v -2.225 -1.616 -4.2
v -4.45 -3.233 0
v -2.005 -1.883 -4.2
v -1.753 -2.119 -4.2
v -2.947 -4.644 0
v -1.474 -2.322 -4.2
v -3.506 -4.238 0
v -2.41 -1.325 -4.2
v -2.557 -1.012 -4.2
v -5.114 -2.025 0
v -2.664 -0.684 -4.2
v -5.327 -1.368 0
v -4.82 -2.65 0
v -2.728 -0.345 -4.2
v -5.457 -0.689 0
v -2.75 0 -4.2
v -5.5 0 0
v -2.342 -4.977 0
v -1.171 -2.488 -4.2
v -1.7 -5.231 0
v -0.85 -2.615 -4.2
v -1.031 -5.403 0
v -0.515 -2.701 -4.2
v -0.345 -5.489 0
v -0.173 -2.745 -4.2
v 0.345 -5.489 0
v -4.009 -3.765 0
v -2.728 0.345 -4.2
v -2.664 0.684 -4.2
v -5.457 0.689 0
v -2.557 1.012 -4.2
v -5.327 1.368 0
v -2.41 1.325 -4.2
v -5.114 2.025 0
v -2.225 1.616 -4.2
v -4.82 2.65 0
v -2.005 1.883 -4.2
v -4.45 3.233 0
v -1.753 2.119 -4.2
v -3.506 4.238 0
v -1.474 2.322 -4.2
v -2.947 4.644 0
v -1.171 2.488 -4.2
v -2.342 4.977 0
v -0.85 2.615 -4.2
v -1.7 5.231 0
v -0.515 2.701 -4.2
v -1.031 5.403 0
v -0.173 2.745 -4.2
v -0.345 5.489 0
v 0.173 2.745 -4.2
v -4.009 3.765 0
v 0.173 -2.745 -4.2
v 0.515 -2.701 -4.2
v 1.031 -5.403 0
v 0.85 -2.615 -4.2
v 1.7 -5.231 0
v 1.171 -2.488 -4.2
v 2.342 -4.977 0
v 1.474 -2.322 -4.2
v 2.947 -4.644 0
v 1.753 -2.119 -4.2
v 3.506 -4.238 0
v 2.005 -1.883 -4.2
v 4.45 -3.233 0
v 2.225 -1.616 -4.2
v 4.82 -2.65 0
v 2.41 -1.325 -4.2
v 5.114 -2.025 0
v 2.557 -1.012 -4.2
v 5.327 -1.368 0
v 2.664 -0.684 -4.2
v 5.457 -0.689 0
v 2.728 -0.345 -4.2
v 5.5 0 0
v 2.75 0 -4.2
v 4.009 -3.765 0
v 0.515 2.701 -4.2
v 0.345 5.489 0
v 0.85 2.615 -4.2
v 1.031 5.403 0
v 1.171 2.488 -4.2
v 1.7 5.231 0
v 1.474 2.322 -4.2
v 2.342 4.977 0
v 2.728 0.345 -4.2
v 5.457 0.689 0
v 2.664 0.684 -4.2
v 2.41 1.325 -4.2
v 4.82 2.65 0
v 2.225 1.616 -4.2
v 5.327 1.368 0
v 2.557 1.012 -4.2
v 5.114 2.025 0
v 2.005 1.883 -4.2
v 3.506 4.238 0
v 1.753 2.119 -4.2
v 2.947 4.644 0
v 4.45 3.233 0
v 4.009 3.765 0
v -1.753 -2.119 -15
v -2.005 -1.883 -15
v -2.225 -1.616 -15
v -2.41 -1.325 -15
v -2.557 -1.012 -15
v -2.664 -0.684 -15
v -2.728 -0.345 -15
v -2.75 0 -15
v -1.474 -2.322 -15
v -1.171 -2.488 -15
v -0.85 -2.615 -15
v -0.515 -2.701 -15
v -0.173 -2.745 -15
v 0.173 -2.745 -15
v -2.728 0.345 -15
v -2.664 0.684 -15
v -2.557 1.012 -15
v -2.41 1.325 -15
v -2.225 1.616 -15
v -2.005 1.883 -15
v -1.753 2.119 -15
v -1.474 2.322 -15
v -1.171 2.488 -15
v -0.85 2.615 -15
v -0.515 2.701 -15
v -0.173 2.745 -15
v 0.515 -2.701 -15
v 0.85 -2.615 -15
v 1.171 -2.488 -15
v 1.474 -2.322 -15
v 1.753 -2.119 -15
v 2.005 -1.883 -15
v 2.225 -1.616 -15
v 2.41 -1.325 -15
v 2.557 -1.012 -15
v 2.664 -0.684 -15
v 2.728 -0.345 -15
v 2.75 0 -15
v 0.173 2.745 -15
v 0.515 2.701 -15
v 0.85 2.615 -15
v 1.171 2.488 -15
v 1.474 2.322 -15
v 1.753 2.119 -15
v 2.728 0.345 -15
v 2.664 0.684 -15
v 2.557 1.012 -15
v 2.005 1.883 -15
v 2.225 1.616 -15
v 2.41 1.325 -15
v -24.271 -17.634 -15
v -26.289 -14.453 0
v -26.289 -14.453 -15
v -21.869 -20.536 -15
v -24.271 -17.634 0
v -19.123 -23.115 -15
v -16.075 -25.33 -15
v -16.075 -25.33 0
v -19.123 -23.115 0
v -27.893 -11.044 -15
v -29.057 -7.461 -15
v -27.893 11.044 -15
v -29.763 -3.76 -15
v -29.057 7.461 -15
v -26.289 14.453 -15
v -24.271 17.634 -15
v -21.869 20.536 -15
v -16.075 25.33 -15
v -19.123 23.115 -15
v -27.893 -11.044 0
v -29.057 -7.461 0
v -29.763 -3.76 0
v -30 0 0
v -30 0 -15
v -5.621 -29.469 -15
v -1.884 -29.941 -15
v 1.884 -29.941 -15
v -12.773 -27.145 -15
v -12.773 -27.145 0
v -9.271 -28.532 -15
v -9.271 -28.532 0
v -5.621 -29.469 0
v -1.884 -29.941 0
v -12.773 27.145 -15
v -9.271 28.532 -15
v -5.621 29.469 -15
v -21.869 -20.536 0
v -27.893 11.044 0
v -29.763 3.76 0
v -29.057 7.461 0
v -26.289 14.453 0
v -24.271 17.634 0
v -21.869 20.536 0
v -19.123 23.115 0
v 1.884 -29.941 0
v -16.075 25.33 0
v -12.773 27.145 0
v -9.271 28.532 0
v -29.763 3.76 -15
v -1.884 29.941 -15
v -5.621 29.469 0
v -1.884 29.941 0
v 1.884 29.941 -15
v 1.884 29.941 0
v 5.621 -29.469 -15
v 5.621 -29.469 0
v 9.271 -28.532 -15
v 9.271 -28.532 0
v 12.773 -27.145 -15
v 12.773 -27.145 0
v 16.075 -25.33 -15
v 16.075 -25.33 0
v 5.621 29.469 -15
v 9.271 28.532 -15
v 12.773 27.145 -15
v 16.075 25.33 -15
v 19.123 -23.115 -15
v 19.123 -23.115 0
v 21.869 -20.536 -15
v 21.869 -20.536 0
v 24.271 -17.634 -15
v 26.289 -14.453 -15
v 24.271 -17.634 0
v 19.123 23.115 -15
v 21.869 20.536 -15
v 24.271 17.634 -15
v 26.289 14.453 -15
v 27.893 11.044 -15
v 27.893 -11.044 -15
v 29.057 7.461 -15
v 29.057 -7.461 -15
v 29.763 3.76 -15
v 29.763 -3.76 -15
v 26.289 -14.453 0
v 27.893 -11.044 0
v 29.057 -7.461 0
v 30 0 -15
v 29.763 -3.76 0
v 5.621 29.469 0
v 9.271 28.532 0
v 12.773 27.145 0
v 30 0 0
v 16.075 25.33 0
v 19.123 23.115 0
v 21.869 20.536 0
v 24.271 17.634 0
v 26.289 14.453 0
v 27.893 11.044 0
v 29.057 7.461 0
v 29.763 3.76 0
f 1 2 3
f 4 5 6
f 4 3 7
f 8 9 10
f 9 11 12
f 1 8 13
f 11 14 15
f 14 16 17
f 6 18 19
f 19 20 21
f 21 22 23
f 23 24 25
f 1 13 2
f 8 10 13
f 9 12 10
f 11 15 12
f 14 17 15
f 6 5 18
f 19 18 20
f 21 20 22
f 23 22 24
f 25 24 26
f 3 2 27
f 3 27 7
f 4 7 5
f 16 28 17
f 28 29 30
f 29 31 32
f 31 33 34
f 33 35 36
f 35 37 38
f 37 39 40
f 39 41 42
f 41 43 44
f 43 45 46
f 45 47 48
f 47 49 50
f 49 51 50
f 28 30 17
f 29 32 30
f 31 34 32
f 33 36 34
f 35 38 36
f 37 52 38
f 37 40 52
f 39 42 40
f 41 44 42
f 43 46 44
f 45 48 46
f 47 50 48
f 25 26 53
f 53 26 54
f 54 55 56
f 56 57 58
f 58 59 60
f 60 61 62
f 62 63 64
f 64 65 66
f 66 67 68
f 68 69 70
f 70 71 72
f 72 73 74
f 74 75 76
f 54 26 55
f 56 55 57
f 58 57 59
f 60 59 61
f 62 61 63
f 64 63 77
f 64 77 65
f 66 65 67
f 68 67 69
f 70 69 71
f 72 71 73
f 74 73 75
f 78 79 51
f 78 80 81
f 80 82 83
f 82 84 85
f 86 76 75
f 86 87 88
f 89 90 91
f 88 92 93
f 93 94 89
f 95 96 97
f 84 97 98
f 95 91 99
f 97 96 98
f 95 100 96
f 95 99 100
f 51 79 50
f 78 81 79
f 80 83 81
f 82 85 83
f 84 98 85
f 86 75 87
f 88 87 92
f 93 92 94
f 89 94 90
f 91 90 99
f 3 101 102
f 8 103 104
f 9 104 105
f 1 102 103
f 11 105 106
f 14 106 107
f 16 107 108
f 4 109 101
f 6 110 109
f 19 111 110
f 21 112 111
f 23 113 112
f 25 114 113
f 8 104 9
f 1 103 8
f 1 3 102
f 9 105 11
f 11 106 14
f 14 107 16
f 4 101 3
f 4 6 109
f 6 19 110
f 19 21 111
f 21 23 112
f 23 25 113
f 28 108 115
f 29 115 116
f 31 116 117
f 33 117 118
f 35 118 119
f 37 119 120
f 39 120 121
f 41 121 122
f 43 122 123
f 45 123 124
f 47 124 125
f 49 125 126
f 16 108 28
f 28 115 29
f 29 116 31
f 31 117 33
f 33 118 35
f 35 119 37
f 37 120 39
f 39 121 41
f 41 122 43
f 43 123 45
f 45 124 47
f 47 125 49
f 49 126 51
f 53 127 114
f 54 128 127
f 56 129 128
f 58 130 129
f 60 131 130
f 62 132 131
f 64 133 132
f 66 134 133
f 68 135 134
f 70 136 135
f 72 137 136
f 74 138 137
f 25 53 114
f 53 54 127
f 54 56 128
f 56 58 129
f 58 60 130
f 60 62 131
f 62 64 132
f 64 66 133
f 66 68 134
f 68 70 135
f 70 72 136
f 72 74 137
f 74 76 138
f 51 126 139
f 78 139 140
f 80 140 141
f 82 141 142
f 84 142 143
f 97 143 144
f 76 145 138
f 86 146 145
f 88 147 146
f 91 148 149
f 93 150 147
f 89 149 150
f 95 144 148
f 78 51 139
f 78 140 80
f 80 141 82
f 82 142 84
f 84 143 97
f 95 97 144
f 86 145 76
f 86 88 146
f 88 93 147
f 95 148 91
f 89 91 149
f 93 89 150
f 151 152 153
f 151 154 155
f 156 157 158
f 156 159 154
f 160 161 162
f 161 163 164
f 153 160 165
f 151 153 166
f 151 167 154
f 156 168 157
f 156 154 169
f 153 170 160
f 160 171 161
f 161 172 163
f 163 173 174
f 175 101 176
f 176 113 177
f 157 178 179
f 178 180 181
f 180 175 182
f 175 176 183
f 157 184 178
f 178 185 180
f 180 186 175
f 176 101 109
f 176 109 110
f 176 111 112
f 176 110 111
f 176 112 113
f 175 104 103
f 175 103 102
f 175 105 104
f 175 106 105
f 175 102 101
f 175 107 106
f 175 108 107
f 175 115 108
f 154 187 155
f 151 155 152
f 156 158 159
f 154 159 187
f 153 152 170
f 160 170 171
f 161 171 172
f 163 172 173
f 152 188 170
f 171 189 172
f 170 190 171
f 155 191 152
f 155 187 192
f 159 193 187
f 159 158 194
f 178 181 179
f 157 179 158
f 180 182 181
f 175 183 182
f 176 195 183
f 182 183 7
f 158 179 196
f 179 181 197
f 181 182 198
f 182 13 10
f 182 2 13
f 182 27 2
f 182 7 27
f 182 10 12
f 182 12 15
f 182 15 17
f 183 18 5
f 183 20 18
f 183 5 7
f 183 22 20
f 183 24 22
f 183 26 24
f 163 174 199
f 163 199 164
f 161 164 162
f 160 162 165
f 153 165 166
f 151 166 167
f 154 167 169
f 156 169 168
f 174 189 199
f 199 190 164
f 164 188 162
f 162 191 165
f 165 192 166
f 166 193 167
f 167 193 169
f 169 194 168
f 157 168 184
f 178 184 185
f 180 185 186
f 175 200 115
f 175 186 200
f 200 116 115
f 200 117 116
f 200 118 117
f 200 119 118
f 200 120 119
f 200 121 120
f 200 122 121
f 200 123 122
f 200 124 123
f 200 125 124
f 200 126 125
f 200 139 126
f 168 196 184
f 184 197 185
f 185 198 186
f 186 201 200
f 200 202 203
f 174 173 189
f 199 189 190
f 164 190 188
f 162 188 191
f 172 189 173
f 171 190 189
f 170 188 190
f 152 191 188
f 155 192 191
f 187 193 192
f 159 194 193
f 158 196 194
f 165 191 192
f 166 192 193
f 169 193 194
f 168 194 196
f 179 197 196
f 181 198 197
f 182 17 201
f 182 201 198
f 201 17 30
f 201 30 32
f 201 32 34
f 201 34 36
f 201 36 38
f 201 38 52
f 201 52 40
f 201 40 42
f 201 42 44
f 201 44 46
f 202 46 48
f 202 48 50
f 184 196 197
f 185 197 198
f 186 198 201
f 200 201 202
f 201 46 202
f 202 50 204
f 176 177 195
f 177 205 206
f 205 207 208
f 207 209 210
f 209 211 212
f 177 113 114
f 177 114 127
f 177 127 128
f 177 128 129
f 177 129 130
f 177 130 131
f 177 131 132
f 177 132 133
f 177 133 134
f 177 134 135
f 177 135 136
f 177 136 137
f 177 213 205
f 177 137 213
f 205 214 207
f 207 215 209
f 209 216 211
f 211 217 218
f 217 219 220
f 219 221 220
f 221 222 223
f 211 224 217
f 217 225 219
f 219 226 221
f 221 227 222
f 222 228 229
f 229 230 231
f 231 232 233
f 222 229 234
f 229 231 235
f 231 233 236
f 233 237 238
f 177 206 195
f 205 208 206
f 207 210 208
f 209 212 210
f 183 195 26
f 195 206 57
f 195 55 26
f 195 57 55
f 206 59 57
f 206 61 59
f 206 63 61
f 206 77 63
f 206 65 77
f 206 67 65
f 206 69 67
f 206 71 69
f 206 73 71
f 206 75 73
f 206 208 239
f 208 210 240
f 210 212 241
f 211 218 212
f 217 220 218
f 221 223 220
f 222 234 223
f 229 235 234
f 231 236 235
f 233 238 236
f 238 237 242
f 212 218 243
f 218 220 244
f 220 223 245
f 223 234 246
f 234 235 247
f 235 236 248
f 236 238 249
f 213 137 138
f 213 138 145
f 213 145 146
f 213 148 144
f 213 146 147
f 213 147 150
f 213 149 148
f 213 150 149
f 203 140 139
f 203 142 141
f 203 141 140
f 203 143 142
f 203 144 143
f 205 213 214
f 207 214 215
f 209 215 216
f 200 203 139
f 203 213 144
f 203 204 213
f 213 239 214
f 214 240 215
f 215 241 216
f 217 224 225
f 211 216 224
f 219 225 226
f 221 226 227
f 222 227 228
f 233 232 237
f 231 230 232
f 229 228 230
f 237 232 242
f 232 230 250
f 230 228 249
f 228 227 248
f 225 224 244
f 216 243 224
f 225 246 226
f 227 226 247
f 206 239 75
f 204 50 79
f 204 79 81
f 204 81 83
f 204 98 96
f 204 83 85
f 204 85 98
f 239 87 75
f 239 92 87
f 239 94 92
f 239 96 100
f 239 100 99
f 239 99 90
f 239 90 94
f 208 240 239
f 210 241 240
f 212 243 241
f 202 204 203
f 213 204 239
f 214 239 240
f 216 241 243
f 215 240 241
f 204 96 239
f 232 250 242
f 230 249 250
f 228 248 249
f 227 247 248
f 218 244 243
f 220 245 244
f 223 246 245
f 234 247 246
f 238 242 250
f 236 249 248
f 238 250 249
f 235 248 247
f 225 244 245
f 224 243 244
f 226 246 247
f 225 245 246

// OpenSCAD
$fn = 50;

difference() {
	union() {
		translate(v = [0, 0, -15.0]) {
			cylinder(h = 15, r = 30.0);
		}
	}
	union() {
		translate(v = [0, 0, 0]) {
			rotate(a = [0, 0, 0]) {
				difference() {
					union() {
						translate(v = [0, 0, -18.0]) {
							cylinder(h = 18, r = 2.25);
						}
						translate(v = [0, 0, -4.2]) {
							cylinder(h = 4.2, r1 = 2.75, r2 = 5.5);
						}
						translate(v = [0, 0, -18.0]) {
							cylinder(h = 18, r = 2.75);
						}
						translate(v = [0, 0, -18.0]) {
							cylinder(h = 18, r = 2.25);
						}
					}
					union();
				}
			}
		}
	}
}
